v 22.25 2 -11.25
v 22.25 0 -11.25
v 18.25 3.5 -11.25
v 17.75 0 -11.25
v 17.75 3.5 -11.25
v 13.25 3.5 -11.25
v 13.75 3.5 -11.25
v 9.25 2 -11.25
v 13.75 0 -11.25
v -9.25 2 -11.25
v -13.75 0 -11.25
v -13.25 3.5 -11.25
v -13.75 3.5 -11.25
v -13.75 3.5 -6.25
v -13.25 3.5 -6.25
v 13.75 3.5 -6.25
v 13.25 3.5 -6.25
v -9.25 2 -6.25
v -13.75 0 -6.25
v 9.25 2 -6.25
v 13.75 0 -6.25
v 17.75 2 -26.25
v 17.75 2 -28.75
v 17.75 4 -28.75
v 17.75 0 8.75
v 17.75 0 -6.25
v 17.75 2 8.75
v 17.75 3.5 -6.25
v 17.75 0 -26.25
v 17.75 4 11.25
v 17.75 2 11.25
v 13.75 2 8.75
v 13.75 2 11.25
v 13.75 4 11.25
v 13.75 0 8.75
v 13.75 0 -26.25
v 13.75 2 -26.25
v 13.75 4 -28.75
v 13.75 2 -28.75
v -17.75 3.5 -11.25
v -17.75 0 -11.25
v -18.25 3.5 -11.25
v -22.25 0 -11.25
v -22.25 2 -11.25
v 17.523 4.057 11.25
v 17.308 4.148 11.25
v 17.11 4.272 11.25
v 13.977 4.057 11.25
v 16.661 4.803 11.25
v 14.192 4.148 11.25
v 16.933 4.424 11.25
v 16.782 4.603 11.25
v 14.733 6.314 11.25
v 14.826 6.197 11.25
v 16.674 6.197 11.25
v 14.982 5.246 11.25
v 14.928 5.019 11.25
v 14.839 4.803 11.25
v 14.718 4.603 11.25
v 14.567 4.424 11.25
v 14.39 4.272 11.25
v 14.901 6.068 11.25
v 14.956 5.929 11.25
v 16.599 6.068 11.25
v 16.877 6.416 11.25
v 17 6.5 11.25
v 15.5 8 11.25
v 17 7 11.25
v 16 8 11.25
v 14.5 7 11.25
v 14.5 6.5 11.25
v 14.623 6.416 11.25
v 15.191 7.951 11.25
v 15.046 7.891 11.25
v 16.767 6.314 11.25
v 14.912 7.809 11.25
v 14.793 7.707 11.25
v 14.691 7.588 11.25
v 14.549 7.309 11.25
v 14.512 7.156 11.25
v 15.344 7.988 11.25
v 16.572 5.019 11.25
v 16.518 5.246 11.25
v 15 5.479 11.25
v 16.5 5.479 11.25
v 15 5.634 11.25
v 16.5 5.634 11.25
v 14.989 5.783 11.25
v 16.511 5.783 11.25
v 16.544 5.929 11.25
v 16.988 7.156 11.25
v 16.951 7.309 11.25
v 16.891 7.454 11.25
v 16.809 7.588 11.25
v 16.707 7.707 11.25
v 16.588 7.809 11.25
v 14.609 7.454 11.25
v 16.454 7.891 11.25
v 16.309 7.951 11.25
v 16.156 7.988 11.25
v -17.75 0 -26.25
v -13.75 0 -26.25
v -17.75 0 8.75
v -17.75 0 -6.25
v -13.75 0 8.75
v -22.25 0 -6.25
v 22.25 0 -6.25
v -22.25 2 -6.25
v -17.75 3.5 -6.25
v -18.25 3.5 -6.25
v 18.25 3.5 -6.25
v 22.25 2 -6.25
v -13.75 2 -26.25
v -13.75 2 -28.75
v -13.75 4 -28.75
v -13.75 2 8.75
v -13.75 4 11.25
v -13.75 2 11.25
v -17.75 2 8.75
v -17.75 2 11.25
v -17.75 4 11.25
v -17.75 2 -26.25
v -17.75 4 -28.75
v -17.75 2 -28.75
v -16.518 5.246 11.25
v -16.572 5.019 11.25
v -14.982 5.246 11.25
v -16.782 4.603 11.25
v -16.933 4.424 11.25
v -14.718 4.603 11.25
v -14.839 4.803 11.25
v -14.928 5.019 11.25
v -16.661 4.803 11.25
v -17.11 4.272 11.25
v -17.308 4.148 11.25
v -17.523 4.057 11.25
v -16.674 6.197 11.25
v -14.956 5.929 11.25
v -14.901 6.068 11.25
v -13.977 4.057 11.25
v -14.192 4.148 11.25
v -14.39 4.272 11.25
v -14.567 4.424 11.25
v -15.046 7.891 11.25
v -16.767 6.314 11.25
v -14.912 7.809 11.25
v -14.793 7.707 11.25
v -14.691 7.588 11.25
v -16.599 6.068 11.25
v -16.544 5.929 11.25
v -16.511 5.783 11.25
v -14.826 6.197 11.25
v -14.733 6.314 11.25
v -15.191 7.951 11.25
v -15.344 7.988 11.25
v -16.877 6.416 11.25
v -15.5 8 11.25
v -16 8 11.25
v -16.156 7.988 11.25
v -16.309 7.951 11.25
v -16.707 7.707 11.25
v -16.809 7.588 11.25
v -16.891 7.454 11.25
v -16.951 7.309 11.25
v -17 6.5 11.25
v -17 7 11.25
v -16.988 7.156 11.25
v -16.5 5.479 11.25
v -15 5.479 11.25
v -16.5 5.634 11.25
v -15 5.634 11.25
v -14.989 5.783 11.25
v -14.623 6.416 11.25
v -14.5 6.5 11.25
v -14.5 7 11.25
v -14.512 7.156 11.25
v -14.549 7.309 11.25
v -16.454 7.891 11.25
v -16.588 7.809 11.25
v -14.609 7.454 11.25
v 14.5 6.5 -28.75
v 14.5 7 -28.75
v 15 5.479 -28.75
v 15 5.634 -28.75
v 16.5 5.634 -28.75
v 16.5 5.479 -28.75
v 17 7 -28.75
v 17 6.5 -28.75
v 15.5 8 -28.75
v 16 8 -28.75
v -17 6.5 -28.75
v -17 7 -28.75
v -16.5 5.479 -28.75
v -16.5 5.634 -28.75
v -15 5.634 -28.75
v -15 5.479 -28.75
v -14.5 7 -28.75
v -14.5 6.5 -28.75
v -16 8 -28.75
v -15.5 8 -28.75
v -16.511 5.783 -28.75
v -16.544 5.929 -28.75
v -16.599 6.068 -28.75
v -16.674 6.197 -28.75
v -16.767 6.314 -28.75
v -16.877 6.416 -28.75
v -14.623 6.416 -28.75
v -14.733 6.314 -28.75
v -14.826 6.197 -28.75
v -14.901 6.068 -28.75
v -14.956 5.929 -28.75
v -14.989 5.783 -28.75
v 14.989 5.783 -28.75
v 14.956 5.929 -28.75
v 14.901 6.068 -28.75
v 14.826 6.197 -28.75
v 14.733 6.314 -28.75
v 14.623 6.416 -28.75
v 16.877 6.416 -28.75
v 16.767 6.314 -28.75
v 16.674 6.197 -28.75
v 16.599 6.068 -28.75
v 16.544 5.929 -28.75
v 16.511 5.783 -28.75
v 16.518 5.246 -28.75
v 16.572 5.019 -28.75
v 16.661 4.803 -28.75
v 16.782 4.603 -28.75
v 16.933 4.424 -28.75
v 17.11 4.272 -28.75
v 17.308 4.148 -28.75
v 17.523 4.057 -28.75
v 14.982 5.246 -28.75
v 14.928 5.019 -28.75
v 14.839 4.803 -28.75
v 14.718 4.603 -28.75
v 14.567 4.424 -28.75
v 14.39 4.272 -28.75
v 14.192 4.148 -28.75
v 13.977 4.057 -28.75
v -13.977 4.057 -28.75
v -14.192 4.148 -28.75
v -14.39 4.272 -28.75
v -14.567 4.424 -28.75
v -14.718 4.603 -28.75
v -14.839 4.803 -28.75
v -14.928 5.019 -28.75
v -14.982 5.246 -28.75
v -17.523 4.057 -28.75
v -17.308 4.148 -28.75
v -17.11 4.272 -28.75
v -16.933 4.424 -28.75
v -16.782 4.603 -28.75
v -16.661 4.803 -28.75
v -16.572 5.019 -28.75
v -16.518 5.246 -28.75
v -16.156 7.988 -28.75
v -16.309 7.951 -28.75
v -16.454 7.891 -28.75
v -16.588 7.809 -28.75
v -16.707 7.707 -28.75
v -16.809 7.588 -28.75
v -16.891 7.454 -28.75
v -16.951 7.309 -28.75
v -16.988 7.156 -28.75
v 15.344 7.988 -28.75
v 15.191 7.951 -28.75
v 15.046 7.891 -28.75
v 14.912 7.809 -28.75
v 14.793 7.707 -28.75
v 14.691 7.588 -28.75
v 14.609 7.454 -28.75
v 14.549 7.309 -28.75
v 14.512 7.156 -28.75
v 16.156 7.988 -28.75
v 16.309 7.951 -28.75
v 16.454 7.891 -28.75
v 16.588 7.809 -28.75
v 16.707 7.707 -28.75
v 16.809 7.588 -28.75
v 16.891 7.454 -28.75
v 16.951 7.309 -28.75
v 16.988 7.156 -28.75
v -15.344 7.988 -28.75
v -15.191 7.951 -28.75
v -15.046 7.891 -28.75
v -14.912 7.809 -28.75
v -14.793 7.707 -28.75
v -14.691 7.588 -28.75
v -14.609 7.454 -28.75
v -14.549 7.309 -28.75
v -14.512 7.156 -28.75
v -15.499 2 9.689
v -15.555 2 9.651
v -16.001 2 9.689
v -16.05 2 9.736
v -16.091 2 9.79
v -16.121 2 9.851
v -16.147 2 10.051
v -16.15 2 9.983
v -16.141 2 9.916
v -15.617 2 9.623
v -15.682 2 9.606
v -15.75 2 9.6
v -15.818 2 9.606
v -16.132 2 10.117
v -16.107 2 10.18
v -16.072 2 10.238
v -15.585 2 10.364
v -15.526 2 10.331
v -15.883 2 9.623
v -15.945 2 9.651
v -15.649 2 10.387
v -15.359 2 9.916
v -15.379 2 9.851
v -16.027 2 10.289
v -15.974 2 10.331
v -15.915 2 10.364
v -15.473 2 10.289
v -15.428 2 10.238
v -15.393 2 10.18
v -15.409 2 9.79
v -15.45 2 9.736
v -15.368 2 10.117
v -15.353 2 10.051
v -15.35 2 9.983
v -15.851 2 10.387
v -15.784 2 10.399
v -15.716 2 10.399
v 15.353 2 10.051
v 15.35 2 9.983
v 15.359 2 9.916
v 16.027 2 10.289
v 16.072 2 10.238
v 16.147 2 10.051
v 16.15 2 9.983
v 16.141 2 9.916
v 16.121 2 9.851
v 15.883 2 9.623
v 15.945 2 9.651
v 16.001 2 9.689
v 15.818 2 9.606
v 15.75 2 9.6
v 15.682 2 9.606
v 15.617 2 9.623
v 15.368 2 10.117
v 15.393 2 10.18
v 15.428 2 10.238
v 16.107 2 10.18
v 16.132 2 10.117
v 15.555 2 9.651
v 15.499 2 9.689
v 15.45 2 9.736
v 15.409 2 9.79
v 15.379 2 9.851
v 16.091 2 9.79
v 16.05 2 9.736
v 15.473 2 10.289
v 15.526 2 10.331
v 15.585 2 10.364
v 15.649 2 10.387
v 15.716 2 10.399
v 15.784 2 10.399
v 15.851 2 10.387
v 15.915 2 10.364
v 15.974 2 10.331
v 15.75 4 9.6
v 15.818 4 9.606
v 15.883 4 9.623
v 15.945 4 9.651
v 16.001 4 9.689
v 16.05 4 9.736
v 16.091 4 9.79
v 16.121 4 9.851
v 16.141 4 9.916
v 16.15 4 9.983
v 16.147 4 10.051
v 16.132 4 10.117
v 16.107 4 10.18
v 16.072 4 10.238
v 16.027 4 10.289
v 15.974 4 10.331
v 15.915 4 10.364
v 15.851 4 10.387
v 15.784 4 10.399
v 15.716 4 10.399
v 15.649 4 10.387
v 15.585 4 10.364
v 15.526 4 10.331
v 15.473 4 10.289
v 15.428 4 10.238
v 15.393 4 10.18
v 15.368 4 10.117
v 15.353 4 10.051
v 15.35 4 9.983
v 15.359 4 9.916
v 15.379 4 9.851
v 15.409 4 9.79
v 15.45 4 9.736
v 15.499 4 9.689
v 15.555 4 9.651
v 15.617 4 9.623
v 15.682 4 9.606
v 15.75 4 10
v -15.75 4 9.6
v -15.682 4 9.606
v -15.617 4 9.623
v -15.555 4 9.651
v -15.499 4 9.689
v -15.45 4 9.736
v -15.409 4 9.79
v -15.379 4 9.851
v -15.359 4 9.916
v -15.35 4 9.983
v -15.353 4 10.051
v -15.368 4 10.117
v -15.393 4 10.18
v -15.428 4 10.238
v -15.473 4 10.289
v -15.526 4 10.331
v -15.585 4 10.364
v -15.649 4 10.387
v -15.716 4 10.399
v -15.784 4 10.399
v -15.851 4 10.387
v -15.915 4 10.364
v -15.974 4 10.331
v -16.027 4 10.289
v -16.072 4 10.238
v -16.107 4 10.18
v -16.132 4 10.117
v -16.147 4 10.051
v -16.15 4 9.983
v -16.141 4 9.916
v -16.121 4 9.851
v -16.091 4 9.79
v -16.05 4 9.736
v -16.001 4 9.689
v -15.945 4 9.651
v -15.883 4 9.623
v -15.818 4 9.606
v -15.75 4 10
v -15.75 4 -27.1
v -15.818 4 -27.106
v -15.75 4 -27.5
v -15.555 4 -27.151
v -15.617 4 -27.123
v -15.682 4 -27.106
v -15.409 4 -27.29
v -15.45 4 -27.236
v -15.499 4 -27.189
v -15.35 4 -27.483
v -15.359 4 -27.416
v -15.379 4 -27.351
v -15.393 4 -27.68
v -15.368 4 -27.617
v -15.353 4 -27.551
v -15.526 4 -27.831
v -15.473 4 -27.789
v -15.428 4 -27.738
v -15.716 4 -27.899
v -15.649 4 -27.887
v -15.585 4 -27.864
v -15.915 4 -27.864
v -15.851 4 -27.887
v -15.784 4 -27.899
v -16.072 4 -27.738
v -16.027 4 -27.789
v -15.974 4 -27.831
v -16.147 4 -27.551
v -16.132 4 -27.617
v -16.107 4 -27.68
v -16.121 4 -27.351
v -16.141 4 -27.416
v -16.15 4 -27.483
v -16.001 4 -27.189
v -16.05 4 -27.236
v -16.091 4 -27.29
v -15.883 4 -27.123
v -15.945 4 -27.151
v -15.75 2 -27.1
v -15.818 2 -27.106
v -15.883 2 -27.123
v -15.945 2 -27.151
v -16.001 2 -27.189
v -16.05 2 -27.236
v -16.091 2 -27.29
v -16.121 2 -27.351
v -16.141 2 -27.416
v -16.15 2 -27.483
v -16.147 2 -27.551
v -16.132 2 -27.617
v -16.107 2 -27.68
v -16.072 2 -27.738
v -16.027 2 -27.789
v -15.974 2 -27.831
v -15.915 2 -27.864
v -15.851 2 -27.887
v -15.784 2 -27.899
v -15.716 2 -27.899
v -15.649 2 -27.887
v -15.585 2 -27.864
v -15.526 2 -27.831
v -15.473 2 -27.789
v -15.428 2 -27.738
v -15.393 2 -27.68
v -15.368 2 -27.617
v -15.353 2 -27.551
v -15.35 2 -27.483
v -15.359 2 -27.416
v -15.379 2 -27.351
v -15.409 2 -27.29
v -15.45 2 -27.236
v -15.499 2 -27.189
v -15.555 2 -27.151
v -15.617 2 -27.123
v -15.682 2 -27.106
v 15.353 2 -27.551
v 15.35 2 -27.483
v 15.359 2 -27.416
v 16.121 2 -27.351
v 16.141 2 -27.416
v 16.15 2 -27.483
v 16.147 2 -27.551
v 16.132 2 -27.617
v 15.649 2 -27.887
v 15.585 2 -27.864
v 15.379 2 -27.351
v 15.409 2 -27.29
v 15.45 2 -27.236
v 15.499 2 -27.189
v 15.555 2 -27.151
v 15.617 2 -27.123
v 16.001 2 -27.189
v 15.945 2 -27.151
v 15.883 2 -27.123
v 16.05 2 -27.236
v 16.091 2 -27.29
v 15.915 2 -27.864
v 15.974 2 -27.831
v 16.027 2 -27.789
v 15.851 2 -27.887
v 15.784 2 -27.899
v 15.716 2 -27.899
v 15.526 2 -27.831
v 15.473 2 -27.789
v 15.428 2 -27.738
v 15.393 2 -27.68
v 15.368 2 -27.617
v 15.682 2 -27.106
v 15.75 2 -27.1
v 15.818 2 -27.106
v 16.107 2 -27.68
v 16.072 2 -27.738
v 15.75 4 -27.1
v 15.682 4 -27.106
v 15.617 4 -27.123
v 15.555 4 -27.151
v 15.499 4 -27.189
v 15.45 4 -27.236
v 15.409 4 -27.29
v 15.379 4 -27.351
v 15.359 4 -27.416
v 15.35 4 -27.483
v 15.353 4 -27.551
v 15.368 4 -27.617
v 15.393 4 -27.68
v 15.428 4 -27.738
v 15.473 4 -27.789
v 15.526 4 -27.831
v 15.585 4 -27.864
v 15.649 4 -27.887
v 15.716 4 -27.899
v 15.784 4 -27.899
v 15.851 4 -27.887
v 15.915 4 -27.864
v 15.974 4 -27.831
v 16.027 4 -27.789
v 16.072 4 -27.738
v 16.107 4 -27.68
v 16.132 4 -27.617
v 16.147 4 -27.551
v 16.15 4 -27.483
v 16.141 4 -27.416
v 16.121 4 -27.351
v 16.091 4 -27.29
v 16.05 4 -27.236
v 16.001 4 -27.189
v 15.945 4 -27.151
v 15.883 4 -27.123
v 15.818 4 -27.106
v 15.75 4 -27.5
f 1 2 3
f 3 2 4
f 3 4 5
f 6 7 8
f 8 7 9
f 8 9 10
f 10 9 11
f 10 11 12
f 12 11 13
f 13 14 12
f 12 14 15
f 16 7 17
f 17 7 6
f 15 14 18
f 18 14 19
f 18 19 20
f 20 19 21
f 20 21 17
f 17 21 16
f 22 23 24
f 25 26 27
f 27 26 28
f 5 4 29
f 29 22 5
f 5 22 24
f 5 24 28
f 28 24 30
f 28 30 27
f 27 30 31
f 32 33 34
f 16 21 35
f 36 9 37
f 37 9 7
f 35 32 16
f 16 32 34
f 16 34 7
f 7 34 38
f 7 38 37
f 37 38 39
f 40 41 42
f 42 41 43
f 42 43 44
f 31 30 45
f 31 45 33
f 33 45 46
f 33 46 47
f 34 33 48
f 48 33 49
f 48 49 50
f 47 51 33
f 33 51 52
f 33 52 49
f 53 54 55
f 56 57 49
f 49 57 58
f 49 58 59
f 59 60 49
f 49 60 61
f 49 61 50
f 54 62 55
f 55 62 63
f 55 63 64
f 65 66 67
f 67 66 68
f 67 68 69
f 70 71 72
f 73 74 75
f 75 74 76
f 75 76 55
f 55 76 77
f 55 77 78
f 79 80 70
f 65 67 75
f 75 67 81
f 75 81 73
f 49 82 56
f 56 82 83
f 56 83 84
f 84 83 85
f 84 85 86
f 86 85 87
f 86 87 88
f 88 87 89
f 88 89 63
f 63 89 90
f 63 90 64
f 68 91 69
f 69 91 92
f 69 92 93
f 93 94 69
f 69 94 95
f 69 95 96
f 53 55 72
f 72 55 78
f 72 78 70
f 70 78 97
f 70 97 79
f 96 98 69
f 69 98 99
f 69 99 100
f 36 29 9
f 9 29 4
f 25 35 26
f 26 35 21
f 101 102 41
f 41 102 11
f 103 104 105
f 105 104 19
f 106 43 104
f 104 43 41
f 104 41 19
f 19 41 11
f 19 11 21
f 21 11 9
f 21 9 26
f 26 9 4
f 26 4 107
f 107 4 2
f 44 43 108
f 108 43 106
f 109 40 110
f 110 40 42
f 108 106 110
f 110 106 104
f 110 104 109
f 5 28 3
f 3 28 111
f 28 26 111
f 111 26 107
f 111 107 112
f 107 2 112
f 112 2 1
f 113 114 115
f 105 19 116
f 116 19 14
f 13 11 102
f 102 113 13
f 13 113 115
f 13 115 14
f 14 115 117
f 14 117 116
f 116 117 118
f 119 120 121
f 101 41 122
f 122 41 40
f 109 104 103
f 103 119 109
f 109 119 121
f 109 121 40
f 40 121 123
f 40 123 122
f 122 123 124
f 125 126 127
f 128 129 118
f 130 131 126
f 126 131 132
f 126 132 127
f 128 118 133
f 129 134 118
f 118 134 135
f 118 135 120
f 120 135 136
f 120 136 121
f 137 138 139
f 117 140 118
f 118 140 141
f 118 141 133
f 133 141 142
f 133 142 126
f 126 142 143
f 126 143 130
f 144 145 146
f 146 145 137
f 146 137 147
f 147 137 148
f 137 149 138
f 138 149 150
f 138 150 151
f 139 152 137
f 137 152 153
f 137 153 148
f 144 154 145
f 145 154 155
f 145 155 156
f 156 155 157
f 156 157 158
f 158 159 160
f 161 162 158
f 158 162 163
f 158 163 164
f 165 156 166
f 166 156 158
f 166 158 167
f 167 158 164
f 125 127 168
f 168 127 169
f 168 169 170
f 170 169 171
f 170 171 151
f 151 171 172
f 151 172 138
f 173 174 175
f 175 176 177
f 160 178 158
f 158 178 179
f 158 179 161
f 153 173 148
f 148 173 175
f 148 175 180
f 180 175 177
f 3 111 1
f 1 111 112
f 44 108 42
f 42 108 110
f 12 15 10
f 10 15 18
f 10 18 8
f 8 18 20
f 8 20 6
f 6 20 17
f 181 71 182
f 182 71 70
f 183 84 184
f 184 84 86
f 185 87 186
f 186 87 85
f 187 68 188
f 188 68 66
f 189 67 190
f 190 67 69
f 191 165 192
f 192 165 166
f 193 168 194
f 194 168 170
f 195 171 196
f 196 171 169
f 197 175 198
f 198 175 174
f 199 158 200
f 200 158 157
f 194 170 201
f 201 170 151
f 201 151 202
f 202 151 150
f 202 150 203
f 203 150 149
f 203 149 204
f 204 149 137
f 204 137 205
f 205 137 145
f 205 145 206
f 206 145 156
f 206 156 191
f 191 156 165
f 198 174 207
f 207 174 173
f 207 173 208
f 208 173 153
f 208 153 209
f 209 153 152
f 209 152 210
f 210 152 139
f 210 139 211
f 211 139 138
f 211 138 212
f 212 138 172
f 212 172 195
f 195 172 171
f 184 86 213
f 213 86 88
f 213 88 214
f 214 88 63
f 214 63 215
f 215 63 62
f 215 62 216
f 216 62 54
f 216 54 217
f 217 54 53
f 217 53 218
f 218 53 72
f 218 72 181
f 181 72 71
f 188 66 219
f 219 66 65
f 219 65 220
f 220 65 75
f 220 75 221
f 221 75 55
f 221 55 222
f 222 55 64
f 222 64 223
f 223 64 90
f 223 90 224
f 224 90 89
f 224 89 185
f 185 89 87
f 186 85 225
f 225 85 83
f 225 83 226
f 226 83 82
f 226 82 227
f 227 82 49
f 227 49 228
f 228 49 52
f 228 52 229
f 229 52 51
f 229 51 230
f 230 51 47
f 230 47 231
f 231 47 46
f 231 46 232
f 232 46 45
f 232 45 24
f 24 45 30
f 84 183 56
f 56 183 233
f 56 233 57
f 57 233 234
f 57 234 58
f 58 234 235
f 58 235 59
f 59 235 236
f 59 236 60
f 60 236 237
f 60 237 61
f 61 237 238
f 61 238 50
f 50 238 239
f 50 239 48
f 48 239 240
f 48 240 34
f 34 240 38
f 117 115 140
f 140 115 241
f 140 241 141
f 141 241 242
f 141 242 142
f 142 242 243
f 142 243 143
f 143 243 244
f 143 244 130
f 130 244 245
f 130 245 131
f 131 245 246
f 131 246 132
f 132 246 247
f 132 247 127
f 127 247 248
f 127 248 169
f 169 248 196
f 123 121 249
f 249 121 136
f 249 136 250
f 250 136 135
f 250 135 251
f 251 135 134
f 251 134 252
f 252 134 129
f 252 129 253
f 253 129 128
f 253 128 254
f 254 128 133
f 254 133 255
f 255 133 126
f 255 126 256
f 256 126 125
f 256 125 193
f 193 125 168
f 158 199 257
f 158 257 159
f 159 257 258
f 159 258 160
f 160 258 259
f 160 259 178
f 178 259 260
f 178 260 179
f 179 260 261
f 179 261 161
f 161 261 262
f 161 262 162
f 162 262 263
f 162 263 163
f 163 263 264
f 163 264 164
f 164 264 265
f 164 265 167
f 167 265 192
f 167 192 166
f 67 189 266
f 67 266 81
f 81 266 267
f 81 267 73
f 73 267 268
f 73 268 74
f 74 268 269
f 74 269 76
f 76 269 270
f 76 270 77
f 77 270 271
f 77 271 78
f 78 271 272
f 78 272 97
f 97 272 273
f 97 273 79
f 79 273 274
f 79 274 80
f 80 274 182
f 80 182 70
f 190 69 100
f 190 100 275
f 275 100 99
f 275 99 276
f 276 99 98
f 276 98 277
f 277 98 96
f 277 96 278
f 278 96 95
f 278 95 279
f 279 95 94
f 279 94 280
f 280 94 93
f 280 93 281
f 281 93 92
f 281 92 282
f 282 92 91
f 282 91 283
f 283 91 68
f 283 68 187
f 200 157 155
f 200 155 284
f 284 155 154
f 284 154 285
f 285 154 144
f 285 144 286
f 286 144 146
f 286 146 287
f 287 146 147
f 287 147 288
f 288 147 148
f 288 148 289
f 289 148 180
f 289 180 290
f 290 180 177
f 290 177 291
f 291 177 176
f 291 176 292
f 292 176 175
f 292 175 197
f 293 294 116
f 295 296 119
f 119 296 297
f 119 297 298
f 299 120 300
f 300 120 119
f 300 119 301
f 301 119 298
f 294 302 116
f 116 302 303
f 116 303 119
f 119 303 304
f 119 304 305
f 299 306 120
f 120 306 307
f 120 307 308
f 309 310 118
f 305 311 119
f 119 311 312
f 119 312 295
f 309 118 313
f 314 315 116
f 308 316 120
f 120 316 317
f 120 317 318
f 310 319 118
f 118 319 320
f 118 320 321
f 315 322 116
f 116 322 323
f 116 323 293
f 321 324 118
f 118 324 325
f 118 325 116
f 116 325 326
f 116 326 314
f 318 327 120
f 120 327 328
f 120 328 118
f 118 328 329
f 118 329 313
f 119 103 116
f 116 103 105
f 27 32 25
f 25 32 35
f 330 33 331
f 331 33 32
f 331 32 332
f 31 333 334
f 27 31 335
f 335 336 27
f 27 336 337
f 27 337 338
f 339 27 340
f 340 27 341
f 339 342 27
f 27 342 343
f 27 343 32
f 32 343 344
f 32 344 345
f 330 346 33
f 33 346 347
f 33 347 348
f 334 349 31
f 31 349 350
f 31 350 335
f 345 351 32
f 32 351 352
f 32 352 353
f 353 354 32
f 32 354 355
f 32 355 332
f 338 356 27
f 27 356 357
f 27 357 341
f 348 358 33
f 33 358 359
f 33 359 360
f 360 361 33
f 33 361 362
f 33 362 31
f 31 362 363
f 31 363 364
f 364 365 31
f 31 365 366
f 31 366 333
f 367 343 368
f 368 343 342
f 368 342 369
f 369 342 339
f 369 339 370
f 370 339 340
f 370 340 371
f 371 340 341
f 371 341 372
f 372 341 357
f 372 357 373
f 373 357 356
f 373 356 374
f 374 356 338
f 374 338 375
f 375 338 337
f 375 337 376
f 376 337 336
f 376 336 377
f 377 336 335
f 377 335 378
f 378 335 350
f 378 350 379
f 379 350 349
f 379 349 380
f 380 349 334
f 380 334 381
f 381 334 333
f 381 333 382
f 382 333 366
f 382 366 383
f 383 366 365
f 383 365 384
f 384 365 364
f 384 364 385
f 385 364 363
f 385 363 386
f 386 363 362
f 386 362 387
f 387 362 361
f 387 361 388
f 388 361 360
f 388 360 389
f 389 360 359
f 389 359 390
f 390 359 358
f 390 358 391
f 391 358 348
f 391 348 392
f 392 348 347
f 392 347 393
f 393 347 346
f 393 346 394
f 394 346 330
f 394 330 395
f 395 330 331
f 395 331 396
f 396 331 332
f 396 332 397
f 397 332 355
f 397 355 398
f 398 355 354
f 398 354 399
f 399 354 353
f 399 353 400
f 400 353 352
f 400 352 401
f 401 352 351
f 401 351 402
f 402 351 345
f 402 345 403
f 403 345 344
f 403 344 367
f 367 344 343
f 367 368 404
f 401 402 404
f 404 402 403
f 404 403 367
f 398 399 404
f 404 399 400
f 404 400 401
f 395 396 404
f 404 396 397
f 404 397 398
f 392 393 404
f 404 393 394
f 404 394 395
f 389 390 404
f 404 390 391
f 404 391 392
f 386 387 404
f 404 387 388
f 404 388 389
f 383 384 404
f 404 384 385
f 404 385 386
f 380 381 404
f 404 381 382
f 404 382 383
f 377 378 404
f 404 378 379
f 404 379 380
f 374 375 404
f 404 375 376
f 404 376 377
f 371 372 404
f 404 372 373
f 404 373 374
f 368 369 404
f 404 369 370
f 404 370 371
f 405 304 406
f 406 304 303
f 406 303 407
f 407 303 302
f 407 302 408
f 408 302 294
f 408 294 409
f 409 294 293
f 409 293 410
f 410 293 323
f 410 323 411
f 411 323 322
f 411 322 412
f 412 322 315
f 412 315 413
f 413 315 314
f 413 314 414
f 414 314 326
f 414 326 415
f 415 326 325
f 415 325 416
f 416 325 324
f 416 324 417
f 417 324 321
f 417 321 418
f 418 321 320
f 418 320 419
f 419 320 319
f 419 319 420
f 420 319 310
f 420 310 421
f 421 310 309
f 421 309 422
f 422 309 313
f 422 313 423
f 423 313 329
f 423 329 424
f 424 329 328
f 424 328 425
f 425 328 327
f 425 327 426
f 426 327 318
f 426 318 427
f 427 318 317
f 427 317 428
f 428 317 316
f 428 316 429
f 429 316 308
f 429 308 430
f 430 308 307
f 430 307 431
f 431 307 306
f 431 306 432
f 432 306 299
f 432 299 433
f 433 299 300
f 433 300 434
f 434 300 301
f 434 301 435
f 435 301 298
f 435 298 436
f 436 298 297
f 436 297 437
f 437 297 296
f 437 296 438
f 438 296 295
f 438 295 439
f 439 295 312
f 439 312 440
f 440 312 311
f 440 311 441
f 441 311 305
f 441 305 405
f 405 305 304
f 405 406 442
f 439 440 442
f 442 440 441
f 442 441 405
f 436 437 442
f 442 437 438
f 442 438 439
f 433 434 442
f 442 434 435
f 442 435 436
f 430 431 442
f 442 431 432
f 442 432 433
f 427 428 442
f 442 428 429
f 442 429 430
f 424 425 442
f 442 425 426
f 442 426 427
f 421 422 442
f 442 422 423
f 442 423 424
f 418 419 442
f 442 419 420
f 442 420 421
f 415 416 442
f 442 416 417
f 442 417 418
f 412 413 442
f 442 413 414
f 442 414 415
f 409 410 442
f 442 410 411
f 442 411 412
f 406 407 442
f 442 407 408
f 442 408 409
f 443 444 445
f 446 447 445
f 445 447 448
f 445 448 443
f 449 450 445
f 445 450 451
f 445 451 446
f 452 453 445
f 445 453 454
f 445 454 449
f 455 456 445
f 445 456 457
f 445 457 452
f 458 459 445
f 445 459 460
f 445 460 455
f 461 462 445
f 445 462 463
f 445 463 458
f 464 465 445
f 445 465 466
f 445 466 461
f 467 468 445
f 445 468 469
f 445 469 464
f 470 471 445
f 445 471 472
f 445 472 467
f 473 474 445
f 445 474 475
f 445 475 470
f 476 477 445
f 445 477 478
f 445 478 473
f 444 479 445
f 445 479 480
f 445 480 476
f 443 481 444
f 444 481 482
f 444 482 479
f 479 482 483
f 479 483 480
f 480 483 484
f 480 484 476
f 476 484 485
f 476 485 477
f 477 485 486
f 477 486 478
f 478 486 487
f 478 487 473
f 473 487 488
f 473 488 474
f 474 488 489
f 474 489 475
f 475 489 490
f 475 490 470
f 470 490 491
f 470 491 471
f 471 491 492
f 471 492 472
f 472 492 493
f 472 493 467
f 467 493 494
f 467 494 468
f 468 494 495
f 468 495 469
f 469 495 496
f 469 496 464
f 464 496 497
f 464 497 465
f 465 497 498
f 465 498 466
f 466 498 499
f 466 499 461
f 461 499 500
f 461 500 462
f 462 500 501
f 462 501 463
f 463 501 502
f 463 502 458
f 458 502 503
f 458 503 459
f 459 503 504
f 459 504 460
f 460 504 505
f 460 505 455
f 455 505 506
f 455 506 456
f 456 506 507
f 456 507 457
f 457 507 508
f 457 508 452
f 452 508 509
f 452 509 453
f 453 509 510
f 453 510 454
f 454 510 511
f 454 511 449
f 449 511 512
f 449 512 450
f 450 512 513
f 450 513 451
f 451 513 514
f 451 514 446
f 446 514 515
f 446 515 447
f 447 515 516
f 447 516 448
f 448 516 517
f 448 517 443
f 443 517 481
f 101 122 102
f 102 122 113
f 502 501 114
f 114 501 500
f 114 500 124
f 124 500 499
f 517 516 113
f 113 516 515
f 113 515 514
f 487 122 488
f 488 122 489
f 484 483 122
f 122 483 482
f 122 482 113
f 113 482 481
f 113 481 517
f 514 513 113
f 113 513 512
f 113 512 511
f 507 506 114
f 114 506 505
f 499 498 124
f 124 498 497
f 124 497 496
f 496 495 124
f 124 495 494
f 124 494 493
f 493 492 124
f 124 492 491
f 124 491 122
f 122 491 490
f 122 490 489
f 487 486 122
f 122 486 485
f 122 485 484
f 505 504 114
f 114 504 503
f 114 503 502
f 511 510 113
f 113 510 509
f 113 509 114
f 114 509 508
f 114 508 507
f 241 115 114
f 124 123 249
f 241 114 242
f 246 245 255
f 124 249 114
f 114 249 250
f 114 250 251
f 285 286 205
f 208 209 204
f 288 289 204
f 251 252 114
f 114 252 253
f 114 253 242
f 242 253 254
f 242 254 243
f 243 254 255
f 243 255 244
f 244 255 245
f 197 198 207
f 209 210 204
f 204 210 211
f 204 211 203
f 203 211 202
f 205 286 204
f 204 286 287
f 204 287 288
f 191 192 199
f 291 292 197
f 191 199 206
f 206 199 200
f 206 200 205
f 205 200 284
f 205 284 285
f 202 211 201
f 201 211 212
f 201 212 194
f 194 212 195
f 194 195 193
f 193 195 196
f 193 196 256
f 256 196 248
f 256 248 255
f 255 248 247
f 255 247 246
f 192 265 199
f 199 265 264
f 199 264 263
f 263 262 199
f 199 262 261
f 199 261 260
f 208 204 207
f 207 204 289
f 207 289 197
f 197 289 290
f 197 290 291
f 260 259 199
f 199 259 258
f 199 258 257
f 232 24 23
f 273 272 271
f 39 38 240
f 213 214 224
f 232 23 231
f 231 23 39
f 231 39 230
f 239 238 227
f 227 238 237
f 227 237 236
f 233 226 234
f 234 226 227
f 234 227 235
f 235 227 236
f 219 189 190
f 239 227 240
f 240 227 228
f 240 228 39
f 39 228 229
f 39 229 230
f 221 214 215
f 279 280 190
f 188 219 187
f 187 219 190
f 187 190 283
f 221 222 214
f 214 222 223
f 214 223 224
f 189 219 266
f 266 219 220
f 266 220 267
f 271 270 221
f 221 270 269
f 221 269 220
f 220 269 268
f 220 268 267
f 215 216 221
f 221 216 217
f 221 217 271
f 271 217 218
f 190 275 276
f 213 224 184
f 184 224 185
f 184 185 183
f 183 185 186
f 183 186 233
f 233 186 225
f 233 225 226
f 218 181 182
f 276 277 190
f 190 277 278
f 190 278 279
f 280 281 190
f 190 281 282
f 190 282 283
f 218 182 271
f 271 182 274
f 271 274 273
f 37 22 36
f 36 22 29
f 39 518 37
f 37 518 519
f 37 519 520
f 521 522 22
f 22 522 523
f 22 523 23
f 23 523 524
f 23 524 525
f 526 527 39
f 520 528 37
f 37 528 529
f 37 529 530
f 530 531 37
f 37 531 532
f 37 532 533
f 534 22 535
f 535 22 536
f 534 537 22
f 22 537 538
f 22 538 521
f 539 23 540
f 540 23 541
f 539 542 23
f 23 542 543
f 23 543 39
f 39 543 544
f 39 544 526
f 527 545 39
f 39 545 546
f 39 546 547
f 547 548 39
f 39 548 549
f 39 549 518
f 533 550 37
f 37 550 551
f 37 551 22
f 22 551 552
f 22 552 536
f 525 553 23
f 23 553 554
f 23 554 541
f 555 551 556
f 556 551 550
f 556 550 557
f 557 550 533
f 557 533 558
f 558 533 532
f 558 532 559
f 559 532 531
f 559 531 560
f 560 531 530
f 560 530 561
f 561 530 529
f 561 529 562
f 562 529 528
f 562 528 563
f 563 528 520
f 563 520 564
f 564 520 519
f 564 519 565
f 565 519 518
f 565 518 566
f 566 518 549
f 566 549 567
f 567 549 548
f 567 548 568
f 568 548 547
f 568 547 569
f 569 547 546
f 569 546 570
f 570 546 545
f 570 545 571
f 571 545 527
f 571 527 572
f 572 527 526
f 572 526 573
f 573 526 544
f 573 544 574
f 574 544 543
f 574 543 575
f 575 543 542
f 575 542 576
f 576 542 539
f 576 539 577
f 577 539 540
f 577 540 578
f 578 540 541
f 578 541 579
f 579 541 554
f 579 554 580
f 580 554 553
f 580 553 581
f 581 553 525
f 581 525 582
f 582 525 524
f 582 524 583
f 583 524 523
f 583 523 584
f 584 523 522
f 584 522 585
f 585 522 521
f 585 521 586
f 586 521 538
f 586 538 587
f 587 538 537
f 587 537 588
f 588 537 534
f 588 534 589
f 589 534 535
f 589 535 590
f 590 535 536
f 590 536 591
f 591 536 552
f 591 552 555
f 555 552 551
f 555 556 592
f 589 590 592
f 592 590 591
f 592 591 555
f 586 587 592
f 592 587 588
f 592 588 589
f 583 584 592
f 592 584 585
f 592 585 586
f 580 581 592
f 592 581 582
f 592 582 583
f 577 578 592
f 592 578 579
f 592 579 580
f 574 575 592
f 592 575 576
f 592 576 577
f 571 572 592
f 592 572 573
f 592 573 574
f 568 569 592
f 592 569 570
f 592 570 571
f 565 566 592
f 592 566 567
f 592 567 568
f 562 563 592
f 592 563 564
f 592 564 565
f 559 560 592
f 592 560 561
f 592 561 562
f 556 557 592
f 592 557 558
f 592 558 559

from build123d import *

# Parameters (mm, degrees)
SKETCH_1_W          = 4
SKETCH_1_H          = 17.5
SKETCH_1_H_2        = 5
EXTRUDE_1_DEPTH     = 4
SKETCH_1_7_W        = 44.5
SKETCH_1_7_H        = 5
EXTRUDE_2_DEPTH     = 3.5
SKETCH_2_W          = 18.5
SKETCH_2_H          = 1.5
CUT_EXTRUDE_1_DEPTH = 32.89533665
SKETCH_2_3_W        = 2.5
SKETCH_2_3_H        = 1.5
EXTRUDE_4_DEPTH     = 22.5
FILLET_1_R          = 1
FILLET_2_R          = 1.5
FILLET_3_R          = 1
SKETCH_5_W          = 2.5
SKETCH_5_H          = 2
CUT_EXTRUDE_2_DEPTH = 43.315038698
SKETCH_10_R         = 0.4
CUT_EXTRUDE_3_DEPTH = 2


with BuildPart() as part:
    # 草图1 → 凸台-拉伸1 (new body)
    with BuildSketch(Plane(origin=(0, 0, 0), x_dir=(1, 0, 0), z_dir=(0, 1, 0))):
        with Locations((-15.75, -2.5)):
            Rectangle(SKETCH_1_W, SKETCH_1_H)
        with Locations((15.75, -2.5)):
            Rectangle(SKETCH_1_W, SKETCH_1_H)
        with Locations((15.75, 8.75)):
            Rectangle(SKETCH_1_W, SKETCH_1_H_2)
        with Locations((-15.75, 8.75)):
            Rectangle(SKETCH_1_W, SKETCH_1_H_2)
    extrude(amount=EXTRUDE_1_DEPTH)

    # 草图1<7> → 凸台-拉伸2 (add)
    with BuildSketch(Plane(origin=(0, 0, 0), x_dir=(1, 0, 0), z_dir=(0, 1, 0))):
        with Locations((0, 8.75)):
            Rectangle(SKETCH_1_7_W, SKETCH_1_7_H)
    extrude(amount=EXTRUDE_2_DEPTH)

    # 草图2 → 切除-拉伸1 (cut, through all)
    with BuildSketch(Plane(origin=(0, 0, -11.25), x_dir=(-1, 0, 0), z_dir=(0, 0, -1))):
        with Locations((0, 2.75)):
            Rectangle(SKETCH_2_W, SKETCH_2_H)
        Polygon((13.25, 3.5), (9.25, 3.5), (9.25, 2), align=None)
        Polygon((-9.25, 3.5), (-13.25, 3.5), (-9.25, 2), align=None)
        Polygon((-22.25, 3.5), (-22.25, 2), (-18.25, 3.5), align=None)
        Polygon((22.25, 3.5), (18.25, 3.5), (22.25, 2), align=None)
    extrude(amount=-CUT_EXTRUDE_1_DEPTH, mode=Mode.SUBTRACT)

    # 草图2<3> → 凸台-拉伸4 (add, through all)
    with BuildSketch(Plane(origin=(0, 0, -11.25), x_dir=(-1, 0, 0), z_dir=(0, 0, -1))):
        with Locations((-15.75, 7.25)):
            Rectangle(SKETCH_2_3_W, SKETCH_2_3_H)
        Polygon((-15, 6.5), (-16.5, 6.5), (-16.5, 4), (-15.75, 4), (-15, 4), align=None)
        with Locations((15.75, 7.25)):
            Rectangle(SKETCH_2_3_W, SKETCH_2_3_H)
        Polygon((16.5, 6.5), (15, 6.5), (15, 4), (15.75, 4), (16.5, 4), align=None)
    extrude(amount=-EXTRUDE_4_DEPTH)

    # 圆角1
    # the kernel refuses this fillet: 1 mm, written as the material it adds along each edge
    with BuildSketch(Plane(origin=(-16.5, 6.5, -11.25), x_dir=(0, -1, 0), z_dir=(0, 0, 1))) as fillet_1_piece_1:
        with BuildLine():
            CenterArc((0.866025404, -1), FILLET_1_R, 90, 60)
            Line((0, -0.5), (-0.017320508, -0.49))
            ThreePointArc((-0.017320508, -0.49), (-0.02, -0.25), (-0.02, 0))
            Line((-0.02, 0), (0, 0.02))
            Line((0, 0.02), (0.866025404, 0.02))
            Line((0.866025404, 0.02), (0.866025404, 0))
        make_face()
    extrude(amount=22.5)
    with BuildSketch(Plane(origin=(-15, 6.5, -11.25), x_dir=(0, -1, 0), z_dir=(0, 0, 1)), Plane(origin=(16.5, 6.5, -11.25), x_dir=(0, -1, 0), z_dir=(0, 0, 1))) as fillet_1_piece_2:
        with BuildLine():
            CenterArc((0.866025404, 1), FILLET_1_R, 210, 60)
            Line((0, 0.5), (-0.017320508, 0.49))
            ThreePointArc((-0.017320508, 0.49), (-0.02, 0.25), (-0.02, 0))
            Line((-0.02, 0), (0, -0.02))
            Line((0, -0.02), (0.866025404, -0.02))
            Line((0.866025404, -0.02), (0.866025404, 0))
        make_face()
    extrude(amount=22.5)
    with BuildSketch(Plane(origin=(15, 6.5, -11.25), x_dir=(-1, 0, 0), z_dir=(0, 0, 1))) as fillet_1_piece_3:
        with BuildLine():
            CenterArc((1, 0.866025404), FILLET_1_R, 180, 60)
            Line((0, 0.866025404), (-0.02, 0.866025404))
            Line((-0.02, 0.866025404), (-0.02, 0))
            Line((-0.02, 0), (0, -0.02))
            ThreePointArc((0, -0.02), (0.25, -0.02), (0.49, -0.017320508))
            Line((0.49, -0.017320508), (0.5, 0))
        make_face()
    extrude(amount=22.5)

    # 圆角2
    # the kernel refuses this fillet: 1.5 mm, written as the material it adds along each edge
    with BuildSketch(Plane(origin=(16.5, 4, -11.25), x_dir=(1, 0, 0), z_dir=(0, 0, 1)), Plane(origin=(-15, 4, -11.25), x_dir=(1, 0, 0), z_dir=(0, 0, 1))) as fillet_2_piece_1:
        with BuildLine():
            CenterArc((1.5, 1.479019946), FILLET_2_R, 180, 80.405931773)
            Line((0, 1.479019946), (-0.03, 1.479019946))
            Line((-0.03, 1.479019946), (-0.03, 0))
            Line((-0.03, 0), (0, -0.03))
            ThreePointArc((0, -0.03), (0.625, -0.03), (1.245, -0.029580399))
            Line((1.245, -0.029580399), (1.25, 0))
        make_face()
    extrude(amount=22.5)
    with BuildSketch(Plane(origin=(15, 4, -11.25), x_dir=(0, 1, 0), z_dir=(0, 0, 1)), Plane(origin=(-16.5, 4, -11.25), x_dir=(0, 1, 0), z_dir=(0, 0, 1))) as fillet_2_piece_2:
        with BuildLine():
            CenterArc((1.479019946, 1.5), FILLET_2_R, 189.594068227, 80.405931773)
            Line((0, 1.25), (-0.029580399, 1.245))
            ThreePointArc((-0.029580399, 1.245), (-0.03, 0.625), (-0.03, 0))
            Line((-0.03, 0), (0, -0.03))
            Line((0, -0.03), (1.479019946, -0.03))
            Line((1.479019946, -0.03), (1.479019946, 0))
        make_face()
    extrude(amount=22.5)

    # 圆角3
    fillet_3_edges = [part.edges().sort_by_distance(p)[0] for p in [
        (14.5, 8, 0),
        (17, 8, 0),
        (-17, 8, 0),
        (-14.5, 8, 0),
    ]]
    fillet(fillet_3_edges, radius=FILLET_3_R)

    # 草图5 → 切除-拉伸2 (cut, through all)
    with BuildSketch(Plane(origin=(17.75, 0, 0), x_dir=(0, 0, -1), z_dir=(1, 0, 0))):
        with Locations((-10, 1)):
            Rectangle(SKETCH_5_W, SKETCH_5_H)
    extrude(amount=-CUT_EXTRUDE_2_DEPTH, mode=Mode.SUBTRACT)

    # 草图10 → 切除-拉伸3 (cut)
    with BuildSketch(Plane.XZ.offset(-2)):
        with Locations(Location((15.75, 10, 0), (0, 0, 270))):
            Circle(SKETCH_10_R)
        with Locations(Location((-15.75, 10, 0), (0, 0, 270))):
            Circle(SKETCH_10_R)
    extrude(amount=-CUT_EXTRUDE_3_DEPTH, mode=Mode.SUBTRACT)

    # 镜向1: part across plane


with BuildPart() as part_1:
    add(part.part)
    add(part.part.mirror(Plane(origin=(0, 0, -8.75), x_dir=(1, 0, 0), z_dir=(0, 0, -1))))


solid = part_1.part
